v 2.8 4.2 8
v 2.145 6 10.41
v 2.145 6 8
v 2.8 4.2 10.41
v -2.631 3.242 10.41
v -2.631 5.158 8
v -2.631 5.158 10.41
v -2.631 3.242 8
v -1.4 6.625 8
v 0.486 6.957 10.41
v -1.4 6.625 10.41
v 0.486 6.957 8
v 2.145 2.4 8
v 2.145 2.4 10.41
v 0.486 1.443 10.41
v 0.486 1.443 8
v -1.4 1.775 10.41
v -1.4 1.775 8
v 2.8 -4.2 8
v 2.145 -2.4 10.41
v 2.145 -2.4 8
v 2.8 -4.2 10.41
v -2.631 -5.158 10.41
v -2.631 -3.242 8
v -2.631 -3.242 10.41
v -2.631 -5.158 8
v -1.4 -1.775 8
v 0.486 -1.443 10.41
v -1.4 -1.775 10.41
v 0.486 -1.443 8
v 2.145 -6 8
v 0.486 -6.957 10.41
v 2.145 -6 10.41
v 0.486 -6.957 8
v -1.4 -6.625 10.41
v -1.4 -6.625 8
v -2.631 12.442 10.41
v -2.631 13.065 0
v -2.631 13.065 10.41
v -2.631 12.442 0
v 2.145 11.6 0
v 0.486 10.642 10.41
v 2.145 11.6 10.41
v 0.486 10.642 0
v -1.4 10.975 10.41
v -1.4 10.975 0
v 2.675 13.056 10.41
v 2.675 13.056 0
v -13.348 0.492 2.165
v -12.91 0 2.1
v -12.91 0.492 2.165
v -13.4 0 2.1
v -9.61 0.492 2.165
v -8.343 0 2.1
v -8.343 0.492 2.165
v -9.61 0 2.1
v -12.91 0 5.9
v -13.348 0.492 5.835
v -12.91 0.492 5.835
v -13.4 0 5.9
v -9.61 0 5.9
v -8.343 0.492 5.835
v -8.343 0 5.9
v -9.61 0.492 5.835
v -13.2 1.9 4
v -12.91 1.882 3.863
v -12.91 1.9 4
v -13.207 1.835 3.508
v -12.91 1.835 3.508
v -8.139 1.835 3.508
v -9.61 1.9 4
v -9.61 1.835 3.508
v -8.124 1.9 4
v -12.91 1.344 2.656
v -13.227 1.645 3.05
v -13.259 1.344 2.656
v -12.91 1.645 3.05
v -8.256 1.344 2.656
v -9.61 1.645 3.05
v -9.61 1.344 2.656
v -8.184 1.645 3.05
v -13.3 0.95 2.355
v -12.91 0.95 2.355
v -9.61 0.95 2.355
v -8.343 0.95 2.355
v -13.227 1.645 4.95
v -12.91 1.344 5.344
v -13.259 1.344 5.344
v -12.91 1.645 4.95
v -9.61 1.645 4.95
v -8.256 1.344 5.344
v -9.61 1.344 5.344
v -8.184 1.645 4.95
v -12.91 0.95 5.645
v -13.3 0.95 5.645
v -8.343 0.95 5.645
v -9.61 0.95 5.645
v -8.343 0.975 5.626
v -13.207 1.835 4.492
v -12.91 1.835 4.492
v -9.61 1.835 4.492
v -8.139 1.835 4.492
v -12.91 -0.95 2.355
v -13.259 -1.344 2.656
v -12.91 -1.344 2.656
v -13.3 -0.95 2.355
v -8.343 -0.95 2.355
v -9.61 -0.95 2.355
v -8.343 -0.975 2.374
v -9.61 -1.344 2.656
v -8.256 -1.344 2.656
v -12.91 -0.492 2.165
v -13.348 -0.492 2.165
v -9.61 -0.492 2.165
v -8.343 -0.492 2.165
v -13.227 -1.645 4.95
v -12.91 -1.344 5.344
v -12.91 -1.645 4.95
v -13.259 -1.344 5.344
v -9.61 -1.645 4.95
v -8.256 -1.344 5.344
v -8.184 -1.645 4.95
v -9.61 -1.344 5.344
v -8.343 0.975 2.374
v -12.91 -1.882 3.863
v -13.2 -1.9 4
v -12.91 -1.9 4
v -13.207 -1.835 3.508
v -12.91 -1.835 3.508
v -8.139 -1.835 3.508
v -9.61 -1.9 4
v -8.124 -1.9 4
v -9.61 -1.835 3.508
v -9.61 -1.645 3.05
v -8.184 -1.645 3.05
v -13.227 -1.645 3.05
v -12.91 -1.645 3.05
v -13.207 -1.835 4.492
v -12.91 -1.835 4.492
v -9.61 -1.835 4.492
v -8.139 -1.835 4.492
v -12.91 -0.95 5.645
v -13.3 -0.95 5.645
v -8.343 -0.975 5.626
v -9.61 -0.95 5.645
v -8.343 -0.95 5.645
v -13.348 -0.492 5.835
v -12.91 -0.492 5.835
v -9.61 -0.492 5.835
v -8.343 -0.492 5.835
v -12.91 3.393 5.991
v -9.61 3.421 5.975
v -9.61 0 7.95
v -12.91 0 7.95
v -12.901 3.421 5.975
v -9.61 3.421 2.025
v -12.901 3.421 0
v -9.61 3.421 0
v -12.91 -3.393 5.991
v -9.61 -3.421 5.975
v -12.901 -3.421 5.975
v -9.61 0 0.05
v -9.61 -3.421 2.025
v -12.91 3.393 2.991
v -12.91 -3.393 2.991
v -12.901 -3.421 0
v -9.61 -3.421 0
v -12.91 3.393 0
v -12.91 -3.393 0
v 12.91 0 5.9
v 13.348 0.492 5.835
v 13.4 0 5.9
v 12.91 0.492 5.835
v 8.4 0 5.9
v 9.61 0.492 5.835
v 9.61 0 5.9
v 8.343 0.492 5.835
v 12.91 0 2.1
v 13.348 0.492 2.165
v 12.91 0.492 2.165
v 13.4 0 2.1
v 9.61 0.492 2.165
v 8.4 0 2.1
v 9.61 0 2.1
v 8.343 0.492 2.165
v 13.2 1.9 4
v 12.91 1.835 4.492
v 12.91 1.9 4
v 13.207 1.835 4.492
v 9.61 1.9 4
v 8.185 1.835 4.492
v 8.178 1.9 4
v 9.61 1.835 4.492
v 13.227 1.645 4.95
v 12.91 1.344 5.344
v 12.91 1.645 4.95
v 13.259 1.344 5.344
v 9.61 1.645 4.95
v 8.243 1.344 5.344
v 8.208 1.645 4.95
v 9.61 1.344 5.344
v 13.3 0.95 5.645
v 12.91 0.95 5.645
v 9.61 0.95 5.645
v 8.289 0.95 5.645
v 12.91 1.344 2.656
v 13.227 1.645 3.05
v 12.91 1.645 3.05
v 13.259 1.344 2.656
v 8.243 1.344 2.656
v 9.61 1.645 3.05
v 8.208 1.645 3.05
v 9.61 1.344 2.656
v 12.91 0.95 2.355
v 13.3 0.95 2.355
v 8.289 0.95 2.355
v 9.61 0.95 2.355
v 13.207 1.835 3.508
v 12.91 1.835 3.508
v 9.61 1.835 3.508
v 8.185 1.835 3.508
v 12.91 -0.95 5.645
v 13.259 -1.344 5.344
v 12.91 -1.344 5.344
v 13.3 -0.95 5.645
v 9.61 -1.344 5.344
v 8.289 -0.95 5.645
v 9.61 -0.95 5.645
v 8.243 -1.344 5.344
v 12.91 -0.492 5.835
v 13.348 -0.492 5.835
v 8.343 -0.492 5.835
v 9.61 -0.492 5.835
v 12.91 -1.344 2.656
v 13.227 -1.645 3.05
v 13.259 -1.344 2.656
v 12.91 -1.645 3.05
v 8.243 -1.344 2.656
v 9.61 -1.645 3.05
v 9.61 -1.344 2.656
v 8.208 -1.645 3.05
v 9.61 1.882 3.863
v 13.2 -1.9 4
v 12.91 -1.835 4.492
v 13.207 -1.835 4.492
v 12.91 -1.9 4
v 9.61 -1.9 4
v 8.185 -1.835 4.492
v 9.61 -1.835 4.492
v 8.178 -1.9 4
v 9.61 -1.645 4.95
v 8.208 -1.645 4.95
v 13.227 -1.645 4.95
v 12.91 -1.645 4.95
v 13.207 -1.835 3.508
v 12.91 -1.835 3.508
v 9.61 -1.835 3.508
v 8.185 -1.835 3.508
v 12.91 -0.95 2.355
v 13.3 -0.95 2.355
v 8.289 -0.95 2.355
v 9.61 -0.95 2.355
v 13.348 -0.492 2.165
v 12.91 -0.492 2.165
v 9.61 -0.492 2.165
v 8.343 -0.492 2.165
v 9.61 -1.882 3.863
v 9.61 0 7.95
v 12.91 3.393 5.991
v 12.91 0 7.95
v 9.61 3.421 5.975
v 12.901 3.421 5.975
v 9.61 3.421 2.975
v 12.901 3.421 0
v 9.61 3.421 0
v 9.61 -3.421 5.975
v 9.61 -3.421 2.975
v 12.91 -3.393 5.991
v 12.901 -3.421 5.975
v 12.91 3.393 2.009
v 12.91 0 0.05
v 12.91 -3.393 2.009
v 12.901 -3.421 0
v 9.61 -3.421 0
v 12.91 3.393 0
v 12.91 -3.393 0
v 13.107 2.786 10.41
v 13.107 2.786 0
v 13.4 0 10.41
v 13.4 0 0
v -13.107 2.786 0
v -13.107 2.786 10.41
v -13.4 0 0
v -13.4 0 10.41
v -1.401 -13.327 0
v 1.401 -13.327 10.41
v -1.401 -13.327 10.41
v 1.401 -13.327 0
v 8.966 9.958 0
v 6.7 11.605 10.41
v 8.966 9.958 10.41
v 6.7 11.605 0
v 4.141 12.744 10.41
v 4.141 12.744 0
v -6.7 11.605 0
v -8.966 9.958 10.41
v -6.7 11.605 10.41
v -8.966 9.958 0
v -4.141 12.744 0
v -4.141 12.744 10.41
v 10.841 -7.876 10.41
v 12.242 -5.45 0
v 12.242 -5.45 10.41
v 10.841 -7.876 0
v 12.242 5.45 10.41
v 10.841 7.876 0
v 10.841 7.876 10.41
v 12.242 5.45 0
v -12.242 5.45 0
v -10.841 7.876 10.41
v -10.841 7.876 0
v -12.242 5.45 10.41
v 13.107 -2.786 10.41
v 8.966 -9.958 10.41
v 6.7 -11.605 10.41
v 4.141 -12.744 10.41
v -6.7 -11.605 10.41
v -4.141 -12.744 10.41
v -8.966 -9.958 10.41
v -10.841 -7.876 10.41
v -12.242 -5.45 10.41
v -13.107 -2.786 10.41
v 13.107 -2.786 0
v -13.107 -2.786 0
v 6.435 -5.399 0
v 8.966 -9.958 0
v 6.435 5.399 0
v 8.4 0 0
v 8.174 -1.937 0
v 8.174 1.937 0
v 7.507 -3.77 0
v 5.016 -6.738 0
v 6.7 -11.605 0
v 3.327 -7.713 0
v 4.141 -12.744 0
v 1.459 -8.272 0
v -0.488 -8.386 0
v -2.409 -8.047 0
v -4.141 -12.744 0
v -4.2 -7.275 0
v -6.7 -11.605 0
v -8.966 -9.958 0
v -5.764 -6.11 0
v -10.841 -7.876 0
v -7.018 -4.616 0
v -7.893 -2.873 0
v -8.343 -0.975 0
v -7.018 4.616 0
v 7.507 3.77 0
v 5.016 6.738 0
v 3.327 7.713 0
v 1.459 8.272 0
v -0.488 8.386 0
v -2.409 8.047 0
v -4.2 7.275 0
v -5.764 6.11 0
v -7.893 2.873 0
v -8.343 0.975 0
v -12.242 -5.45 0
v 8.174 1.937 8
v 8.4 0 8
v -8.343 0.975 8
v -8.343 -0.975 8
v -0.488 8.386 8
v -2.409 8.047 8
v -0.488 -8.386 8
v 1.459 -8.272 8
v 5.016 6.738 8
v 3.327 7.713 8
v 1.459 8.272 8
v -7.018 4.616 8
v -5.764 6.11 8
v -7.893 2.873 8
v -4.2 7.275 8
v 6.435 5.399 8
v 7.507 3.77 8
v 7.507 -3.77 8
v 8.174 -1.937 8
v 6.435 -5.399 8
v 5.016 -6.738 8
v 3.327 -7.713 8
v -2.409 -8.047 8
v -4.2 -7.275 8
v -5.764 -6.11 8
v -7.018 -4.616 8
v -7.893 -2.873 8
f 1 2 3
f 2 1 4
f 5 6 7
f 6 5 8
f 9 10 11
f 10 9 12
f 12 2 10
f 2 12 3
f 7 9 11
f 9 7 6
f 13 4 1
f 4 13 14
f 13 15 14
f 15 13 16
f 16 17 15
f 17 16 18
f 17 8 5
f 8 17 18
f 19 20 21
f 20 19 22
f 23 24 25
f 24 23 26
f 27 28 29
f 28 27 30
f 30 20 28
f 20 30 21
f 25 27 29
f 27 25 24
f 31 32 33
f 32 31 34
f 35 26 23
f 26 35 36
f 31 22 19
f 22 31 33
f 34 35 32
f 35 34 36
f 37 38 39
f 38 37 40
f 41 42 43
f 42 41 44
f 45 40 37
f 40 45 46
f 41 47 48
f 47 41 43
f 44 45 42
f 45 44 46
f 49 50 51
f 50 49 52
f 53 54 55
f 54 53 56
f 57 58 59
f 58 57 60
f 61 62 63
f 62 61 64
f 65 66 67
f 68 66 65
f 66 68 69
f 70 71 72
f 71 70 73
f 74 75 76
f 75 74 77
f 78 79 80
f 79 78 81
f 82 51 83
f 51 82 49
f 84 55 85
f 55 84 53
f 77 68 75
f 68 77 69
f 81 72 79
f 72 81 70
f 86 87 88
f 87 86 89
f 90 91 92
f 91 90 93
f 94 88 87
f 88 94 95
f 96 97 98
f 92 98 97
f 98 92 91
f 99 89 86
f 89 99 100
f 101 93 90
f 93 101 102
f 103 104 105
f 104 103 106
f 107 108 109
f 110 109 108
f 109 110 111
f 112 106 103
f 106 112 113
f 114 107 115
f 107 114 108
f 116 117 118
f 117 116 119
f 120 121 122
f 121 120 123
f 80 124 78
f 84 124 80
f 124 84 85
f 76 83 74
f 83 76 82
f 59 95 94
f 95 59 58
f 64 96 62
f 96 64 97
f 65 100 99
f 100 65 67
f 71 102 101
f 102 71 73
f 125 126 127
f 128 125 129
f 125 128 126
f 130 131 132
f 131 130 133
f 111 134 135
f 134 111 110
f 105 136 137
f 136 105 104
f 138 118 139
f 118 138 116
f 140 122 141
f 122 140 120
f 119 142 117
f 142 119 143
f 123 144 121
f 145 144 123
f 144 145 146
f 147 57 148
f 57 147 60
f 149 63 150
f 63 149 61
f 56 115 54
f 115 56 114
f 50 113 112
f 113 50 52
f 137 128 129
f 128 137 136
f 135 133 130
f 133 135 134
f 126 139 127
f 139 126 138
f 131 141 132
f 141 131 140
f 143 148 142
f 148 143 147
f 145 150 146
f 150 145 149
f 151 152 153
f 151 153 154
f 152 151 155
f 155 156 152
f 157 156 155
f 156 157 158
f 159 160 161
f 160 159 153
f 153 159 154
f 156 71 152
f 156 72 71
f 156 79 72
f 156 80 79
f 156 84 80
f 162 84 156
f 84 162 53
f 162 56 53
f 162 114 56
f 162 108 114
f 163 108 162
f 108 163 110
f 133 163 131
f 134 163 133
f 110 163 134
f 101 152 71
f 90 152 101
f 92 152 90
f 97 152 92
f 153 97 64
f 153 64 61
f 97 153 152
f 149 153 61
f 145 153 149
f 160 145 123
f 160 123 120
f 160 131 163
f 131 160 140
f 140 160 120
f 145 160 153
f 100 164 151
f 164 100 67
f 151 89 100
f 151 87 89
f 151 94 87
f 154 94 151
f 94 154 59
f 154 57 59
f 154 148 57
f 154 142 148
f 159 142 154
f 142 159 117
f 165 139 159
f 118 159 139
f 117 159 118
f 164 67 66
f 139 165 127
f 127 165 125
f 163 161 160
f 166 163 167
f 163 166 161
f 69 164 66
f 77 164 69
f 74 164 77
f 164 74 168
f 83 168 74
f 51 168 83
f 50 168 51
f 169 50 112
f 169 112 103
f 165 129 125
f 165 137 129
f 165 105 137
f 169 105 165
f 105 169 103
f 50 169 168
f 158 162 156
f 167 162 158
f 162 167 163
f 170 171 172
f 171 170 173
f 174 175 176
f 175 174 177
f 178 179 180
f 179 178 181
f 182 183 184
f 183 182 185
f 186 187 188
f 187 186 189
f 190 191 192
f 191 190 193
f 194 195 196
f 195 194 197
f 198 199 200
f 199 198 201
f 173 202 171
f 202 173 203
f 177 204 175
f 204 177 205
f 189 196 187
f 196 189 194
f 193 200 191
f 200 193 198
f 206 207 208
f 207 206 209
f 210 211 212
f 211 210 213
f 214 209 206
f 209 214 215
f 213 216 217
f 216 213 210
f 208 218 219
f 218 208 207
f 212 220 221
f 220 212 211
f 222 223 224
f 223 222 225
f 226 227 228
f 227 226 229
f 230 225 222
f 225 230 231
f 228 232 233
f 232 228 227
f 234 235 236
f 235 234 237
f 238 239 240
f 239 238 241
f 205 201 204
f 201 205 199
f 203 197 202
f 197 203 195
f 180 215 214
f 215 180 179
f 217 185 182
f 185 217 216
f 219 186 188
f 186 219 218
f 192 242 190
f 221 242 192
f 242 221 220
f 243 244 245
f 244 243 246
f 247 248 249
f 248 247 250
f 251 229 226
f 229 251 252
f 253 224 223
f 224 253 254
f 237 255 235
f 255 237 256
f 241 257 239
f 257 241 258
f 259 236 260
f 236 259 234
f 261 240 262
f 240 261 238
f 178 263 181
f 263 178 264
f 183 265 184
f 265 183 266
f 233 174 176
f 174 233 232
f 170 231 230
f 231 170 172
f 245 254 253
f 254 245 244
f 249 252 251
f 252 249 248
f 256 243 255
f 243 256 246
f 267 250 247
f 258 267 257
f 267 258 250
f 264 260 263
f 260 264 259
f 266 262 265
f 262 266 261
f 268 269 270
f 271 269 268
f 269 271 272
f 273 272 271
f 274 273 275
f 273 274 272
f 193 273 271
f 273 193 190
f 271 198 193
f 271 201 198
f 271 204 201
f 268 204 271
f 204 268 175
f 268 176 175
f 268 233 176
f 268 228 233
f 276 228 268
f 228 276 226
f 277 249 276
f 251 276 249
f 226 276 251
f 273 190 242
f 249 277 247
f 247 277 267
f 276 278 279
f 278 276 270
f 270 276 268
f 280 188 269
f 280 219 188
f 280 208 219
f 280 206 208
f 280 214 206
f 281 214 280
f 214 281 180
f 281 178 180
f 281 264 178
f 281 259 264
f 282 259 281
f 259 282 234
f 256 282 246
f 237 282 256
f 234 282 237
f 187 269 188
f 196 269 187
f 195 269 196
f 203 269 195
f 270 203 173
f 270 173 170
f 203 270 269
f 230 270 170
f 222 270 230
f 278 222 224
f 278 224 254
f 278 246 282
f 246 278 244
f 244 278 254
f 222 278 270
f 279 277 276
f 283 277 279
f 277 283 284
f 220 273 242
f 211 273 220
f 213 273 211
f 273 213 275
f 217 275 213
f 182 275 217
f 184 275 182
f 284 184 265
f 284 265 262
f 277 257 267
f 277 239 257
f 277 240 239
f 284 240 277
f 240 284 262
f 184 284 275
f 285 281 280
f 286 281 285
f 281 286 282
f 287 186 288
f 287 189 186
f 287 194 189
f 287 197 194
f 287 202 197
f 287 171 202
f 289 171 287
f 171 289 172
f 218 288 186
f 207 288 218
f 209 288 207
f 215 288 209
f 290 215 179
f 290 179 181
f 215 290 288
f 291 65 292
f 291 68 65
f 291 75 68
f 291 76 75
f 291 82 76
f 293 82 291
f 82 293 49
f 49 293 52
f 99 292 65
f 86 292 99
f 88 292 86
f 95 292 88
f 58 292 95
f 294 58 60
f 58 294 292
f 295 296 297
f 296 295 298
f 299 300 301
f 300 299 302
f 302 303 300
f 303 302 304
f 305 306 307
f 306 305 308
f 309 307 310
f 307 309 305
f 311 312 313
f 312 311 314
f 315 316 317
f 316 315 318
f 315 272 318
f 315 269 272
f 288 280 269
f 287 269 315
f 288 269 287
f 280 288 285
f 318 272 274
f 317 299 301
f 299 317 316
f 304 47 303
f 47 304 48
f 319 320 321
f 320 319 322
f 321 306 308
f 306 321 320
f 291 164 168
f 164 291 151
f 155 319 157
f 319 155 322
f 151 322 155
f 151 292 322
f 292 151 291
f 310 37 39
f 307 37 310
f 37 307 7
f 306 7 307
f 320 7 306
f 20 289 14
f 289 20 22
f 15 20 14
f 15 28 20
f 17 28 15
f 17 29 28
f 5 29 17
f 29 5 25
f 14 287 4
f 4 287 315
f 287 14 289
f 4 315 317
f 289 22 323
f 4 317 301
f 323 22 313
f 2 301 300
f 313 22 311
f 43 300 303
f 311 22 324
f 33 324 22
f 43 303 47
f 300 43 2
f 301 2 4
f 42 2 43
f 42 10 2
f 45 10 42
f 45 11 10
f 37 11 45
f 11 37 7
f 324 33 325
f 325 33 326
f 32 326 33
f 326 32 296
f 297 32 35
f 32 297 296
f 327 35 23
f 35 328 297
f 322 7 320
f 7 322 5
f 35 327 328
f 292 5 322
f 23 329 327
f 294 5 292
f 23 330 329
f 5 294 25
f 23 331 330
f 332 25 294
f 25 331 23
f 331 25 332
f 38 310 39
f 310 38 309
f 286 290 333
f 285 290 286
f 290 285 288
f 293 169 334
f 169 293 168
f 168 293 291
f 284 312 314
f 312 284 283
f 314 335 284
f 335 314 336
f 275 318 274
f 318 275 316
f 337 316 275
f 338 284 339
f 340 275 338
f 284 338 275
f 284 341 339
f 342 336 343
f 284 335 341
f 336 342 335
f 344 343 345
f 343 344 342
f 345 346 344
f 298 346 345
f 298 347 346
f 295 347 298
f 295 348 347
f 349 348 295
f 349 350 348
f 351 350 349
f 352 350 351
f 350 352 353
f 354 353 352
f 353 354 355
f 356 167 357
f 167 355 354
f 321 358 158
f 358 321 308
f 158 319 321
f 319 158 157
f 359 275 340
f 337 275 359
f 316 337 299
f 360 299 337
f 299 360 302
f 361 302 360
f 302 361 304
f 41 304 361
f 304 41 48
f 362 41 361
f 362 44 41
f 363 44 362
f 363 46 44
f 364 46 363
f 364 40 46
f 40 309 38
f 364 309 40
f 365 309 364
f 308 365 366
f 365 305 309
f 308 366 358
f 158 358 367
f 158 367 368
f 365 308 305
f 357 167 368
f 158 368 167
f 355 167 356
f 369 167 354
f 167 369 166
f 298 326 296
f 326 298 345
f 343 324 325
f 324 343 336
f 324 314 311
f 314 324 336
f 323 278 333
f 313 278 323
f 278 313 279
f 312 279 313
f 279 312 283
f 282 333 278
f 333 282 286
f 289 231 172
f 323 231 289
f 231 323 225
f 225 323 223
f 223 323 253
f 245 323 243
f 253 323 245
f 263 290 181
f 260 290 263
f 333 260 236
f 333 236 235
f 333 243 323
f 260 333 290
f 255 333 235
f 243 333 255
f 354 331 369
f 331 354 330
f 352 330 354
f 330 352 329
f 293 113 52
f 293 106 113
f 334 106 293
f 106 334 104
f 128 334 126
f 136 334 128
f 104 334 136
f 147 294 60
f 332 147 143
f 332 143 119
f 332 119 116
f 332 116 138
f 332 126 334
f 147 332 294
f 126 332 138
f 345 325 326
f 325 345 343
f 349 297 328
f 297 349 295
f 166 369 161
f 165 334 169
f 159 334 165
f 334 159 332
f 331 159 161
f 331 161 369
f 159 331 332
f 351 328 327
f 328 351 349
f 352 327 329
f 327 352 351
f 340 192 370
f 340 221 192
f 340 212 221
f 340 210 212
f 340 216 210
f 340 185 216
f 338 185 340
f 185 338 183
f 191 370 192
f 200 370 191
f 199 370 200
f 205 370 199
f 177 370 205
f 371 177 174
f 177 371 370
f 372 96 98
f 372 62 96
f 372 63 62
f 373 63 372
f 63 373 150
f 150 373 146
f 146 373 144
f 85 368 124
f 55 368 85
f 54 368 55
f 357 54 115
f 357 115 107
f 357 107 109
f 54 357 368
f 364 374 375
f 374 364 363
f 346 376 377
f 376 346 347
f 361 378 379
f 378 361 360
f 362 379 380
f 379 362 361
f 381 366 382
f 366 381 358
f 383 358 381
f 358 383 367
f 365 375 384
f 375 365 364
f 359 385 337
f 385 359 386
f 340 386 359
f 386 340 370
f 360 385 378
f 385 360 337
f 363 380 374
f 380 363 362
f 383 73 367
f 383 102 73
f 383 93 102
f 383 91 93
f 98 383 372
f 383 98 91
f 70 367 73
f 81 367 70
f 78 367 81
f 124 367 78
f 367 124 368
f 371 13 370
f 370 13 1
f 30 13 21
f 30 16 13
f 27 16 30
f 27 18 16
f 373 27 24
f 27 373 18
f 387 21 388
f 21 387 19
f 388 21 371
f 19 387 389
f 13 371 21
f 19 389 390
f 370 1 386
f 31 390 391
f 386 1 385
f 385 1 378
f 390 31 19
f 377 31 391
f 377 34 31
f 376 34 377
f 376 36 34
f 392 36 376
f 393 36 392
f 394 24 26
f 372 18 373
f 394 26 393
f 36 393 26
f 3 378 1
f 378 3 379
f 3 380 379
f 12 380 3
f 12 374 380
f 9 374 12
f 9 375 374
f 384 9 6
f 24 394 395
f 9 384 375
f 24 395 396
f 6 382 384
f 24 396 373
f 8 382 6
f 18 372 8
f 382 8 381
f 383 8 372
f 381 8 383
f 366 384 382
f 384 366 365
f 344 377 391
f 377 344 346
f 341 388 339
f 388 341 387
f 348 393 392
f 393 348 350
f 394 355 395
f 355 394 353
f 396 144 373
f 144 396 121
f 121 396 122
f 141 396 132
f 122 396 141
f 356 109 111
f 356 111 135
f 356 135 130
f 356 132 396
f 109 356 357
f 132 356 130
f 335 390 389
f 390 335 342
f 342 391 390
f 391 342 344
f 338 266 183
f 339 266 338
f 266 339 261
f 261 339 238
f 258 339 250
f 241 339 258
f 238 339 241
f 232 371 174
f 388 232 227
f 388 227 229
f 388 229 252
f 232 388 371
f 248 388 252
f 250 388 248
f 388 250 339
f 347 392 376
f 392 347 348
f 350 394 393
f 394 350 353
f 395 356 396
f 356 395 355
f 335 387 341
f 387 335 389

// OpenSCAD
// Speaker
SPEAK_D = 15 + 1;
SPEAK_H = 8;

// GAP & EPS
GAP = 0.4;
EPS = 0.01;

// Holder
S_HOLD_H = SPEAK_H + GAP + 2;
S_HOLD_D = SPEAK_D + 2*GAP + 10;

// Wire
WIRE_D = 4;
WIRE_EDGE = 3; // distance from the edge

// Grub screw & nut
M3_SHANK_R = 3.0 / 2 + GAP;
M3_HEAD_R   = 5.5 / 2 + GAP;
SHANK_R  = M3_SHANK_R;
HEAD_R   = M3_HEAD_R;
HEAD_H   = 3.5;
NUT_H    = 2.5;
LENGTH   = S_HOLD_D / 2 + 10;

module speaker() {
    translate([0,0, -EPS])
    cylinder(SPEAK_H + EPS, d = SPEAK_D + 2*GAP, d = SPEAK_D + 2*GAP);
}

module wire() {
    translate([0, SPEAK_D/2 - WIRE_EDGE - 2*GAP, 0])
        cylinder(100, d = WIRE_D + 4*GAP);
    translate([0,-(SPEAK_D/2 - WIRE_EDGE - 2*GAP), 0])
        cylinder(100, d = WIRE_D + 4*GAP);
    translate([0, S_HOLD_D / 2, -EPS])
    cylinder(S_HOLD_D, d = WIRE_D + 4* GAP);
}

module grub () {
    union () {
        translate([0, 0, -17])
        cylinder (r = SHANK_R, h = LENGTH + EPS, center = true, $fn = 24);
        translate (v = [0, 0, - (LENGTH - NUT_H) / 2 - EPS])
            cylinder (r = HEAD_R + 2*GAP, h = NUT_H + 2*GAP, center = true, $fn = 6);
    }
}

module all_grub () {
    translate ([-0.8, 0, 0]) {
    translate ([0, 0, SPEAK_H / 2])
    rotate([0, 90, 0])
    grub();
        translate ([- (LENGTH - NUT_H) / 2 - EPS, 0, 1])
            rotate([0, 90, 0])            
                cylinder (r = HEAD_R + 2*GAP, h = NUT_H + 2*GAP, center = true, $fn = 6);
    }
    translate([0.8, 0, 0]) {
    translate ([0, 0, SPEAK_H / 2])
    rotate([0, 270, 0])
    grub();
        translate ([(LENGTH - NUT_H) / 2 + EPS, 0, 1])
            rotate([0, 90, 0])            
                cylinder (r = HEAD_R + 2*GAP, h = NUT_H + 2*GAP, center = true, $fn = 6);
    }
}

module speak_holder() {
    difference() {
        cylinder(S_HOLD_H + EPS, d = S_HOLD_D, d = S_HOLD_D);
        speaker();
        wire();
        all_grub();
    }
}

speak_holder();
